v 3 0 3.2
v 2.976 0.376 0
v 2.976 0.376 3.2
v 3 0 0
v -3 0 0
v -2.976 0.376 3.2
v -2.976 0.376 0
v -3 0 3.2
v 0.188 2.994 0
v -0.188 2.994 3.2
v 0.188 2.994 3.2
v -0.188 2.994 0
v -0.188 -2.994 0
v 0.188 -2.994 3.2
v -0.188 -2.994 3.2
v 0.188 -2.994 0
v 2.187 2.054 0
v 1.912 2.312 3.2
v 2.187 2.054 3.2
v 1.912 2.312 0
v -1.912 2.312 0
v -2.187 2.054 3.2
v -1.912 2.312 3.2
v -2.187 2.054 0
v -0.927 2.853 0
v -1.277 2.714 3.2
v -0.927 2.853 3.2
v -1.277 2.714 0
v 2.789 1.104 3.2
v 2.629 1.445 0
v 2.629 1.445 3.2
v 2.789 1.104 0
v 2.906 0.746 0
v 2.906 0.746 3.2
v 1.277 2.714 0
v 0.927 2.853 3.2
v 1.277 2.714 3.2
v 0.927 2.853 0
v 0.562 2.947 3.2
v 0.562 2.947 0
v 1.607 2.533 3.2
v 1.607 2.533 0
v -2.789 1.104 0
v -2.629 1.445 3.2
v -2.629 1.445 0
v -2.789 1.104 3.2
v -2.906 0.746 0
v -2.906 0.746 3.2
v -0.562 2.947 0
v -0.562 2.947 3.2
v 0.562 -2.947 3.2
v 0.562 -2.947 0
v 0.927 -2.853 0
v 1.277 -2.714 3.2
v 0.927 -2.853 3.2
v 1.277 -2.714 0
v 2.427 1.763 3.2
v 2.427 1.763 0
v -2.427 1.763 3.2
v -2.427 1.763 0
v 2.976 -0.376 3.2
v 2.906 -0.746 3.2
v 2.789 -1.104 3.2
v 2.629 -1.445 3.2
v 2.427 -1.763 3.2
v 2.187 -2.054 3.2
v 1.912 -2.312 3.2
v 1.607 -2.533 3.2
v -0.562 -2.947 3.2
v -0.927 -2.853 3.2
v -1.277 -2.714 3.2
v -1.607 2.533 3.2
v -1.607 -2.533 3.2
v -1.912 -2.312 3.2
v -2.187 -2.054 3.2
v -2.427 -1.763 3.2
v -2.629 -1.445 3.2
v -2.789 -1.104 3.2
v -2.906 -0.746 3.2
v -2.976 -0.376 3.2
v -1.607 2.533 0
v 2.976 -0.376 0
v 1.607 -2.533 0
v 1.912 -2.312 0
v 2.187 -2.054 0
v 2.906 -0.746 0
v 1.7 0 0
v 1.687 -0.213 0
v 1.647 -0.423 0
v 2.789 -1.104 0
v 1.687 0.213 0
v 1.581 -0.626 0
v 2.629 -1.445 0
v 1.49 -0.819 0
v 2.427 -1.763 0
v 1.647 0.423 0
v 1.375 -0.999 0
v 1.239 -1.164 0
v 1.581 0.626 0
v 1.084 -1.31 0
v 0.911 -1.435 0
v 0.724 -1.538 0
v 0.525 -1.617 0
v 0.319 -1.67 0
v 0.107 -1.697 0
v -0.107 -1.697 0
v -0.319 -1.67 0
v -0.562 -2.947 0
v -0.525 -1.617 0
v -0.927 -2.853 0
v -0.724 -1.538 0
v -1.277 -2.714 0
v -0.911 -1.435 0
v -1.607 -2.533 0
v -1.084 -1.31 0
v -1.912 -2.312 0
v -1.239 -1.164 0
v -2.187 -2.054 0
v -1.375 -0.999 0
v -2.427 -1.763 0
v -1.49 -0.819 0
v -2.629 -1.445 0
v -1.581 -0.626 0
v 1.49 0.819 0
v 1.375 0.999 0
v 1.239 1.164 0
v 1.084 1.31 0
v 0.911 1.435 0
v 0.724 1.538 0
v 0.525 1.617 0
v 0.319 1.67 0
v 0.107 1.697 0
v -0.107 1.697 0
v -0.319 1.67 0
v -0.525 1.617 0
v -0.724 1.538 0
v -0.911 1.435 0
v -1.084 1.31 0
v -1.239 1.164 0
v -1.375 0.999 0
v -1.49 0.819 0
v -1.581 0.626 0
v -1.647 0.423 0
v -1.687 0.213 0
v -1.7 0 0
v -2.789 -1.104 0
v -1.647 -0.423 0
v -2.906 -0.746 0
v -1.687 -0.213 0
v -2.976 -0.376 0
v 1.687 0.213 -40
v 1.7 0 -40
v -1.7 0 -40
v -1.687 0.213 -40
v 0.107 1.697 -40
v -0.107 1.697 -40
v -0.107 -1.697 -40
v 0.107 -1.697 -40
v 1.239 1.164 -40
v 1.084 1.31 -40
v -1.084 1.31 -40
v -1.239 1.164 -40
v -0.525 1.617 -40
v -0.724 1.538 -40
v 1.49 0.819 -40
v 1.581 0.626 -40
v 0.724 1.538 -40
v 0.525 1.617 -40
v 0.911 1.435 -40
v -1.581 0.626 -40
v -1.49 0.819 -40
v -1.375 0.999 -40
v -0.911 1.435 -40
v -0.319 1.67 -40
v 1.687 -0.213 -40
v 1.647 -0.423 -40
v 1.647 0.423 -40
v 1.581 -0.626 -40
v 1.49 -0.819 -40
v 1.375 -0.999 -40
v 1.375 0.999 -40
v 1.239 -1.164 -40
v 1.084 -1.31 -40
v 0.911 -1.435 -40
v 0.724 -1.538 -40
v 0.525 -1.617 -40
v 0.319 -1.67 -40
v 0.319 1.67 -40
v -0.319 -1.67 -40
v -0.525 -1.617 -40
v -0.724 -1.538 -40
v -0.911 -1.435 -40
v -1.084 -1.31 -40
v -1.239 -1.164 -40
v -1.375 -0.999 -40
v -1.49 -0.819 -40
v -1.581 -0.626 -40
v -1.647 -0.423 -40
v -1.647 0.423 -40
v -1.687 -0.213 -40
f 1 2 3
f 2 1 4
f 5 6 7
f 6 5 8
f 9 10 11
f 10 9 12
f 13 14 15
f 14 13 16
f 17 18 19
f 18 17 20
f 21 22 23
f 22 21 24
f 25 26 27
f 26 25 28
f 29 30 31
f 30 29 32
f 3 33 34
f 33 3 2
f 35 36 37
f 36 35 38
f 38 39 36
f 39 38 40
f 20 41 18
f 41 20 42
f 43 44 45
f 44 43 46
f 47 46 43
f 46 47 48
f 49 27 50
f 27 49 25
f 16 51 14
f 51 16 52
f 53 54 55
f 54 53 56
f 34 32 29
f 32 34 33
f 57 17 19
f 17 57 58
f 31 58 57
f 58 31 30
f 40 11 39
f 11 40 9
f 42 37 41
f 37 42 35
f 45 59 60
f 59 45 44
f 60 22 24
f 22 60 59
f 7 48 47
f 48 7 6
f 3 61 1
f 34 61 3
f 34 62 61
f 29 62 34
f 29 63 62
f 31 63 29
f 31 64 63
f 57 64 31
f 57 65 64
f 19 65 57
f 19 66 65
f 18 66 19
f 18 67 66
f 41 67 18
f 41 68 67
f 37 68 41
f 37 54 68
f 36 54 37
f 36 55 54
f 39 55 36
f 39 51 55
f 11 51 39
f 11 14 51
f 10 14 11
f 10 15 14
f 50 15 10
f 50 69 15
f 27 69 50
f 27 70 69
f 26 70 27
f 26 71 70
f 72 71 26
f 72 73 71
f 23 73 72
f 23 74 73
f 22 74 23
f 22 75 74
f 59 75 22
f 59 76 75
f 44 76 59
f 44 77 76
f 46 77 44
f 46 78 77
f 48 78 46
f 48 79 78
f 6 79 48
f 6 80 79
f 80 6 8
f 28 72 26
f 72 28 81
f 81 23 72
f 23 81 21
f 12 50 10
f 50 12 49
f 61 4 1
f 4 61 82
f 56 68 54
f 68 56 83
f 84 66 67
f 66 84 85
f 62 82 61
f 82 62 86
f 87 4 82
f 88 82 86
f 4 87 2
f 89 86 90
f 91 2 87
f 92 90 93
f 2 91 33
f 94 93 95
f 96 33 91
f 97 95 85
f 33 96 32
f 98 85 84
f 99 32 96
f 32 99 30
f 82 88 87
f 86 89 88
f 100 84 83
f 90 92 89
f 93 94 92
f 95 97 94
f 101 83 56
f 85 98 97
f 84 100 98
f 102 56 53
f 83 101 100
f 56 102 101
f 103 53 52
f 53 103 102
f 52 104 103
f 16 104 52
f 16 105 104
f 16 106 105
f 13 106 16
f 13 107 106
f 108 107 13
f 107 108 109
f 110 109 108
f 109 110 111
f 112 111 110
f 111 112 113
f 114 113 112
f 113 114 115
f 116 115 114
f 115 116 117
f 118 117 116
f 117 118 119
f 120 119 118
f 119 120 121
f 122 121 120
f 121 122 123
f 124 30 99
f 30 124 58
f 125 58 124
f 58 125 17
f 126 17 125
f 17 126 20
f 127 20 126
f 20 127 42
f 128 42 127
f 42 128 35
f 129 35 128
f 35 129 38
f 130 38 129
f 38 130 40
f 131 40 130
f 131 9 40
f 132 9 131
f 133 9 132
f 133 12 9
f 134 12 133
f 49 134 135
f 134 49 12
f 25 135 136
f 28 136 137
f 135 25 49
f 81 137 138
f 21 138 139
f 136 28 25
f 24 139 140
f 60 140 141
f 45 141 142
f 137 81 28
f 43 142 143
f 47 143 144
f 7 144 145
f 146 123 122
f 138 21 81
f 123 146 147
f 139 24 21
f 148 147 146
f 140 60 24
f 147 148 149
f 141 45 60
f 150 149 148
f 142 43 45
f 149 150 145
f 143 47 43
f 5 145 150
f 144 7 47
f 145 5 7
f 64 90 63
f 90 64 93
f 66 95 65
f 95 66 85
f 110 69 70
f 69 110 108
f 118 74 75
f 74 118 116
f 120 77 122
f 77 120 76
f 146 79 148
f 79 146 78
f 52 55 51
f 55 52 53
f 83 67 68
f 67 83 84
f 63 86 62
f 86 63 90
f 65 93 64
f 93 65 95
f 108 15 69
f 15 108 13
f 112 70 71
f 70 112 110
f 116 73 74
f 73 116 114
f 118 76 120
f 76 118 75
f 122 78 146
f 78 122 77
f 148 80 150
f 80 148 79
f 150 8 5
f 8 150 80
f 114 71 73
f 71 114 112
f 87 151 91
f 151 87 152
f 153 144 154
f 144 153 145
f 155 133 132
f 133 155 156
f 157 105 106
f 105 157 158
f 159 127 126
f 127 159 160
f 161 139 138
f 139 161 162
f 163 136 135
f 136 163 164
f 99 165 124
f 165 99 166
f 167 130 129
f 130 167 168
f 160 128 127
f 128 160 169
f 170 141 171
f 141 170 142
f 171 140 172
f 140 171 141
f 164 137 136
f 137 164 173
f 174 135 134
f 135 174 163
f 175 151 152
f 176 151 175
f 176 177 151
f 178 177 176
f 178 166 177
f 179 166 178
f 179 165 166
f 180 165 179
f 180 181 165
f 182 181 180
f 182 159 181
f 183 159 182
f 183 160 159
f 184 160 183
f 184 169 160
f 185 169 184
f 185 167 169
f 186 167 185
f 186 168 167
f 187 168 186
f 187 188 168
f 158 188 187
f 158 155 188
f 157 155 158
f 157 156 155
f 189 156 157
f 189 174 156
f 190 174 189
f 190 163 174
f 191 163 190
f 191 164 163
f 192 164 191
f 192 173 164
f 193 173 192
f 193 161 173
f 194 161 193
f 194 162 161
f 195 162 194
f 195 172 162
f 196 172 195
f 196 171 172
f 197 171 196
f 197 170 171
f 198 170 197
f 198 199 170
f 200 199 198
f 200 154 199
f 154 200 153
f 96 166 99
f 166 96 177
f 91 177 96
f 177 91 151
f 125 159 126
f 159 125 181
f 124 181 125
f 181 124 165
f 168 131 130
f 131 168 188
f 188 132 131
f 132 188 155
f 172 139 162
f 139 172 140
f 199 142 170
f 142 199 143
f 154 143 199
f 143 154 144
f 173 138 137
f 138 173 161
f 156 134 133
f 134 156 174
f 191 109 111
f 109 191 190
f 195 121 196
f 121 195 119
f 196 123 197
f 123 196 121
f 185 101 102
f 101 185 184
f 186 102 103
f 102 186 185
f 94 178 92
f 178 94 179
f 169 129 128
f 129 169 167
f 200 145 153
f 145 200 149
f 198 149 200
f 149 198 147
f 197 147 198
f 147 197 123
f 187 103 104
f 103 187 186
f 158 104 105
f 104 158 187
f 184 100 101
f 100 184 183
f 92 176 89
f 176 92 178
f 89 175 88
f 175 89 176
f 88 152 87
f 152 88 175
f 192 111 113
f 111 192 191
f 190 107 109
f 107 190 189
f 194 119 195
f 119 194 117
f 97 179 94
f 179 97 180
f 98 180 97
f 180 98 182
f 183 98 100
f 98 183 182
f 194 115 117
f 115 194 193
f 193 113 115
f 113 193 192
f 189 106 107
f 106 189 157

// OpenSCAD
$fn = 50;


difference() {
	union() {
		translate(v = [0, 0, 0]) {
			rotate(a = [0, 0, 0]) {
				cylinder(h = 3.2000000000, r = 3.0000000000);
			}
		}
		translate(v = [0, 0, -40]) {
			rotate(a = [0, 0, 0]) {
				cylinder(h = 40, r = 1.7000000000);
			}
		}
	}
	union();
}
